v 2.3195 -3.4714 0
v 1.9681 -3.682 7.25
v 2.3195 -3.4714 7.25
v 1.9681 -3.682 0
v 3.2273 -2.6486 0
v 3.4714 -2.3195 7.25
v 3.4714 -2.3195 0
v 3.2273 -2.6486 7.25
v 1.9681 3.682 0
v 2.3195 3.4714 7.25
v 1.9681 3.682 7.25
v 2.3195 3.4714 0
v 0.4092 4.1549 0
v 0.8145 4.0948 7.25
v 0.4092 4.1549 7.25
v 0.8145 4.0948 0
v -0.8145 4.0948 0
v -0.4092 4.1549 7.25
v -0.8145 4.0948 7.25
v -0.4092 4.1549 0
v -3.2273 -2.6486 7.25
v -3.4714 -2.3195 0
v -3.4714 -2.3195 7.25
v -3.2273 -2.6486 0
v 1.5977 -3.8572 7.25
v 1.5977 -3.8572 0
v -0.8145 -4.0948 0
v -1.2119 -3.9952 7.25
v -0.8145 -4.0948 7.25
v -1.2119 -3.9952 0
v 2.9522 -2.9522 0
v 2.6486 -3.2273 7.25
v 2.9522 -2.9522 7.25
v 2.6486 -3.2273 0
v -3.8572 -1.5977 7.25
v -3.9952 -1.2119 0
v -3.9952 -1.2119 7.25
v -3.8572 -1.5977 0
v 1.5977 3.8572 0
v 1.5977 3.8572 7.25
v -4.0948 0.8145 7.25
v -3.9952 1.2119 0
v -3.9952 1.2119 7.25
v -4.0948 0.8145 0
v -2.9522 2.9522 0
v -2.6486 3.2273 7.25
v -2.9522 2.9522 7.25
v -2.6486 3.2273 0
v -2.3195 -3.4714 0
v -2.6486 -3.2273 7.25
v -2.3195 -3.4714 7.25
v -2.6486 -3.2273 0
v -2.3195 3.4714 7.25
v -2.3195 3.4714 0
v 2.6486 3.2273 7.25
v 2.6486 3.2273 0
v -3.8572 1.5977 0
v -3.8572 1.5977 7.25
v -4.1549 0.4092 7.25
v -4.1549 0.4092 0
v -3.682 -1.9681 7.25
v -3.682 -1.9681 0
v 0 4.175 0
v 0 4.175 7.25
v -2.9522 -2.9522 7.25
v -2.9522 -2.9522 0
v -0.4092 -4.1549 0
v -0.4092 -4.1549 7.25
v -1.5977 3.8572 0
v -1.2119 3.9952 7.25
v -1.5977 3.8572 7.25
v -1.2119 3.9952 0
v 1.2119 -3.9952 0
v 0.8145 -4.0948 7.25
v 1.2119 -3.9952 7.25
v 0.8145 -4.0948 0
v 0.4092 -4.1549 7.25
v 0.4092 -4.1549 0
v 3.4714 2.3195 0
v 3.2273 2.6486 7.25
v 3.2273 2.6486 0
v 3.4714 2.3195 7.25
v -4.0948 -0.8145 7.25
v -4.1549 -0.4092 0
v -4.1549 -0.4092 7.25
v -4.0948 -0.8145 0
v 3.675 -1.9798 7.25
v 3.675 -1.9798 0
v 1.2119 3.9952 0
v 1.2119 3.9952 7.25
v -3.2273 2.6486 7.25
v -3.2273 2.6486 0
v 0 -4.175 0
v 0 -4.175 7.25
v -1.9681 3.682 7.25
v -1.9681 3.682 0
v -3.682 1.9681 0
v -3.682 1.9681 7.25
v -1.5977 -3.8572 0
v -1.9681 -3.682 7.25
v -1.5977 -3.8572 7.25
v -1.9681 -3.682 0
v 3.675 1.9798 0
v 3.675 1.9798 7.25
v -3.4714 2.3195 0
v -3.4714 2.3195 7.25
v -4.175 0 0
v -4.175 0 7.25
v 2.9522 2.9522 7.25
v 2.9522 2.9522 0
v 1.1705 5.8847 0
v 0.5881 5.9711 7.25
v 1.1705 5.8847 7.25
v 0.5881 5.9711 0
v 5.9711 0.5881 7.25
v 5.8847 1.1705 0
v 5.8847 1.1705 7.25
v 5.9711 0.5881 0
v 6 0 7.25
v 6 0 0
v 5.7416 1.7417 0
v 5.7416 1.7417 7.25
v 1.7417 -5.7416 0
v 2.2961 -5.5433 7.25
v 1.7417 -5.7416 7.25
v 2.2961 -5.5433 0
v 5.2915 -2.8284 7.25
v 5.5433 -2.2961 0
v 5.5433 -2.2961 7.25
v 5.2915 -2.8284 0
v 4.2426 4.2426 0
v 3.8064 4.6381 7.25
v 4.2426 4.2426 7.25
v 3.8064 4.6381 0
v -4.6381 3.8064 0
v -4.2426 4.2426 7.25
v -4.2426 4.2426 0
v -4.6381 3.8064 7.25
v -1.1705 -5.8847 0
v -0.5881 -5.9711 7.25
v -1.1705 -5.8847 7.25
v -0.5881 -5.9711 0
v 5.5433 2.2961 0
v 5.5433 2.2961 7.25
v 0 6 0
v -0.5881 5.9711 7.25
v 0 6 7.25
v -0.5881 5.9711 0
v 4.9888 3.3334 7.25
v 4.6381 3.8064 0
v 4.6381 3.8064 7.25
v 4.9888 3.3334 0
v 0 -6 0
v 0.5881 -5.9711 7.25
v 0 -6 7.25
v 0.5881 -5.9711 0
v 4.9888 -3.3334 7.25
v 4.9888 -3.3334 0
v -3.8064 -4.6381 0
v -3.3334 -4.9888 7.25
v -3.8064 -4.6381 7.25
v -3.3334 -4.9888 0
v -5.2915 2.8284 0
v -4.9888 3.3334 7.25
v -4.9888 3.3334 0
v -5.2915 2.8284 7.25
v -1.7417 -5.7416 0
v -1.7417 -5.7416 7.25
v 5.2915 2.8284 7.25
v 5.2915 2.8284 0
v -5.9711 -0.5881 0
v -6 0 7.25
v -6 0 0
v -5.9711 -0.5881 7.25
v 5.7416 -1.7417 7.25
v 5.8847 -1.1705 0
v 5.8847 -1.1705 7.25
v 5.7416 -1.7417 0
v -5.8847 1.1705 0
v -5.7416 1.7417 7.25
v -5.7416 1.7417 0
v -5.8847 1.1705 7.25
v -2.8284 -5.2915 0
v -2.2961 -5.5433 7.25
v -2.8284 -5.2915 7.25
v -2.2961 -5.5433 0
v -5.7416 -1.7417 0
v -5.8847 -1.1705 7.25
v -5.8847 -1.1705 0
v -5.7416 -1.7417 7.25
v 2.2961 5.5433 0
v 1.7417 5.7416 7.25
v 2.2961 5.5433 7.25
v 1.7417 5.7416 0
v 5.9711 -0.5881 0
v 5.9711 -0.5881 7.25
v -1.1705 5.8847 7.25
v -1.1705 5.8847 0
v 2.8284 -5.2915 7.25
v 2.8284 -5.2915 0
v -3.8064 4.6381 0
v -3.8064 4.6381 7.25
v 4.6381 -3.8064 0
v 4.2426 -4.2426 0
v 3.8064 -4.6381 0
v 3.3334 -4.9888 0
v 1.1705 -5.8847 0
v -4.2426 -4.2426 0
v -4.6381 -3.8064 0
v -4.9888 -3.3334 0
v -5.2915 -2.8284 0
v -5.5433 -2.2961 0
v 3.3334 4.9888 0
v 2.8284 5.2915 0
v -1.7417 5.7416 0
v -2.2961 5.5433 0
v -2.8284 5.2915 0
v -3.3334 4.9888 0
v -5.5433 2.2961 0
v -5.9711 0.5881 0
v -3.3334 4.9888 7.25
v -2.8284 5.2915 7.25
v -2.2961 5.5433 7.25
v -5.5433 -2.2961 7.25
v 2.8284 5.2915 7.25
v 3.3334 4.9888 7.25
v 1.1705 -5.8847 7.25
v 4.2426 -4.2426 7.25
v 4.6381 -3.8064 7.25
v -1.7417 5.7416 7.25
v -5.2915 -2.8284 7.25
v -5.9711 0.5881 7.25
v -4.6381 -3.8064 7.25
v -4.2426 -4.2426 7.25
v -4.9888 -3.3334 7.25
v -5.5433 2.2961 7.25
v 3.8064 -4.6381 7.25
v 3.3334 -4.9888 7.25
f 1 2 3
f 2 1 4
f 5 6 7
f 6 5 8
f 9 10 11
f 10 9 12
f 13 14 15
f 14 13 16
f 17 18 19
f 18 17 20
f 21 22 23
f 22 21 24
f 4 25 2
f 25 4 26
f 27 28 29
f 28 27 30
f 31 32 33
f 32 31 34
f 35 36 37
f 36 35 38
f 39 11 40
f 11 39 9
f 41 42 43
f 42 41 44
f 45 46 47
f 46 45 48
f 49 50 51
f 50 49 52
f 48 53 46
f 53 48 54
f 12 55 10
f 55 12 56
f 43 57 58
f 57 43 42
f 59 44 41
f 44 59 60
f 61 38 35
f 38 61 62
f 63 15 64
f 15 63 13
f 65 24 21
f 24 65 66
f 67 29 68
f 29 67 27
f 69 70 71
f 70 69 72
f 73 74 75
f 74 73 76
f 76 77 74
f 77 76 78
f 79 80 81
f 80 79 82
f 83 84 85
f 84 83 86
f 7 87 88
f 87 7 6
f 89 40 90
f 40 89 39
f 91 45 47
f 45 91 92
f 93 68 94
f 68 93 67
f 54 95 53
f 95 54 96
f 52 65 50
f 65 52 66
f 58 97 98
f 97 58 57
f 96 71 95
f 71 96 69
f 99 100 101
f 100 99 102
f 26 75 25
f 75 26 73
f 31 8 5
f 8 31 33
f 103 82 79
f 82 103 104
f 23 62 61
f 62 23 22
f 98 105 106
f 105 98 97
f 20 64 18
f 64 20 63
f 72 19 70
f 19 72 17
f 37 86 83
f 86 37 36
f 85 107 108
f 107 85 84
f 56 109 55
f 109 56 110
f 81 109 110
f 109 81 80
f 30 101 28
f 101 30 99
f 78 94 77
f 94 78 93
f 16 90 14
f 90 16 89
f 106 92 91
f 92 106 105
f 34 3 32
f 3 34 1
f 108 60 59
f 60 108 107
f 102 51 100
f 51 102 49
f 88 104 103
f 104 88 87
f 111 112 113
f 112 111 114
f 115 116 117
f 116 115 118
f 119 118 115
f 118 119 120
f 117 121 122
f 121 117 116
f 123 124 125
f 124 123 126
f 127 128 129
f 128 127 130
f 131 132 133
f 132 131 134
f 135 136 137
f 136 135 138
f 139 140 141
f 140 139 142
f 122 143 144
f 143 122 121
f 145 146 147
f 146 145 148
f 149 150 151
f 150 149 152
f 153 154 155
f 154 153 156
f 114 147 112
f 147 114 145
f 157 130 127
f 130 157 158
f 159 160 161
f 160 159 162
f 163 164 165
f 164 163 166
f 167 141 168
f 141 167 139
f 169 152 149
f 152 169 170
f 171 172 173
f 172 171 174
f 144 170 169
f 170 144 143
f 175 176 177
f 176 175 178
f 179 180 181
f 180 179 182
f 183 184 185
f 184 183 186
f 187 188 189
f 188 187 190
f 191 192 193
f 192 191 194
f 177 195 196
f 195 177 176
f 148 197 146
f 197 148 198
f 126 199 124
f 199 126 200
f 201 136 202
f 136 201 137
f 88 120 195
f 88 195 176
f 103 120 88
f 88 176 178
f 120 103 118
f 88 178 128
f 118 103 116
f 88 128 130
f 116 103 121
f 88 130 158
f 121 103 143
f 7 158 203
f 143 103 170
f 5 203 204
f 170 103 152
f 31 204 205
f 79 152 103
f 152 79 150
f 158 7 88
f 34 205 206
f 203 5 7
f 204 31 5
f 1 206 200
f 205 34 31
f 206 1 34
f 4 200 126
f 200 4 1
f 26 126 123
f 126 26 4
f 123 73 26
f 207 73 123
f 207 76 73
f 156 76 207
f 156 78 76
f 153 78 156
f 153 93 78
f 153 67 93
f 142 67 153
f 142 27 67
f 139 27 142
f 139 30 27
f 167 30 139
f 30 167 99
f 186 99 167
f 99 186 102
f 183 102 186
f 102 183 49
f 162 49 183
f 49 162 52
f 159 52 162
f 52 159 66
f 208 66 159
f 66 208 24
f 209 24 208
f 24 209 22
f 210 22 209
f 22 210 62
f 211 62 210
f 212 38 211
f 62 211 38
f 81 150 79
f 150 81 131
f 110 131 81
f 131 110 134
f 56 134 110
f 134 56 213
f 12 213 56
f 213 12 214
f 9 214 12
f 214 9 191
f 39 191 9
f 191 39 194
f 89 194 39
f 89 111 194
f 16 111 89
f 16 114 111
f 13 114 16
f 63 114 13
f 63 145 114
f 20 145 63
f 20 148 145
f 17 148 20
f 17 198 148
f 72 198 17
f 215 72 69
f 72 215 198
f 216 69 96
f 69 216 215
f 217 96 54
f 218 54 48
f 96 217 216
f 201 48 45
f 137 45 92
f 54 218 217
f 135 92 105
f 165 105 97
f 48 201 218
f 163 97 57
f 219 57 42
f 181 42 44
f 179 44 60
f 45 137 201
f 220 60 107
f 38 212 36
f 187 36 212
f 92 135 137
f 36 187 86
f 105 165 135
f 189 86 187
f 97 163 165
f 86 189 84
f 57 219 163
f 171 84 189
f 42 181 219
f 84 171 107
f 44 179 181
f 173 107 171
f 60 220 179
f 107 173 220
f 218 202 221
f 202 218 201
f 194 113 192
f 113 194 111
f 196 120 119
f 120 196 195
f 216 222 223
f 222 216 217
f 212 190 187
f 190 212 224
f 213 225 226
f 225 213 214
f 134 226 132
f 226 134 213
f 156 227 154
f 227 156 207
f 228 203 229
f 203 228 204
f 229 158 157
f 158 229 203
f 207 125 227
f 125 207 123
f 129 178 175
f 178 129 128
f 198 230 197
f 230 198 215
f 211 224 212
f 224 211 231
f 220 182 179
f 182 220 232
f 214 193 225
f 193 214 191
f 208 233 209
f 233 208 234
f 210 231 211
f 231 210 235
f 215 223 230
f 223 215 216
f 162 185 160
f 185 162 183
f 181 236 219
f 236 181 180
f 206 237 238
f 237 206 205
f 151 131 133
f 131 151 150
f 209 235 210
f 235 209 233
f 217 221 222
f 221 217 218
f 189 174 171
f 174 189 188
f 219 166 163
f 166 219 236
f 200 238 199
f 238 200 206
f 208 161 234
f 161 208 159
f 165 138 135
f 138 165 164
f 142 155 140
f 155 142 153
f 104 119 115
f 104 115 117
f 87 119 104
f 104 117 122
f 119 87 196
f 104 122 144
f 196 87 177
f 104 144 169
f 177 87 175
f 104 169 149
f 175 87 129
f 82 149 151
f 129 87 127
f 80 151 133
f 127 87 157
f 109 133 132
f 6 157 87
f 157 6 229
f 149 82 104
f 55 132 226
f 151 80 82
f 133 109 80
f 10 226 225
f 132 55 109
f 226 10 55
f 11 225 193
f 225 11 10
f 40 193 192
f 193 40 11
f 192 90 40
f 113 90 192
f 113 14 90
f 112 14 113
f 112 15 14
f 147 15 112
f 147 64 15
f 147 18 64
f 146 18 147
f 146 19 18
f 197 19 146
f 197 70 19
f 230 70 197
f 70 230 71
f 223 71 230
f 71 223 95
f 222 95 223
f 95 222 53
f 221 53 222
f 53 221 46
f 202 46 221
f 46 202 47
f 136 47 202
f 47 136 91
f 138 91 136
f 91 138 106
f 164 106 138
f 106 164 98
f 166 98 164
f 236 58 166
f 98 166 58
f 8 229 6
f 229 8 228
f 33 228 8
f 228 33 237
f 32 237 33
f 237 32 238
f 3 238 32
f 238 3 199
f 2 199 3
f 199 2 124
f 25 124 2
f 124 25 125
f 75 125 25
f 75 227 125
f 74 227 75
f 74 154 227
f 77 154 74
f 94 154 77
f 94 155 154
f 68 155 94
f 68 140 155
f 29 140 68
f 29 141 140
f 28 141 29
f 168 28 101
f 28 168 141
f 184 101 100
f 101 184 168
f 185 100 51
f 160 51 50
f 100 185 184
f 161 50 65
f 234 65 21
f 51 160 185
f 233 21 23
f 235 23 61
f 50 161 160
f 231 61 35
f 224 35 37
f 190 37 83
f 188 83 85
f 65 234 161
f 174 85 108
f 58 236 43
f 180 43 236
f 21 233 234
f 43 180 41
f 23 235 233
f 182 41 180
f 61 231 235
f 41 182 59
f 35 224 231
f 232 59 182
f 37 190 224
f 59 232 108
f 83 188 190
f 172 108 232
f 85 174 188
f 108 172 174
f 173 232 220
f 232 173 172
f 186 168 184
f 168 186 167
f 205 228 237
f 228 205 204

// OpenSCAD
// Gen-CR — gap sleeve: rigid spacer on the shaft BETWEEN the two rotor carriers (passes through the stator
// hole). Length = m2m, so it sets the magnet gap and carries the full magnet pull. Print x1, upright.
include <parameters.scad>;
$fn = 64;
// D-flat keyed bore: flat faces +X (angle 0 = magnet pocket 0 = index notch)
module dflat_bore(h) {
    intersection() {
        cylinder(d=shaft_bore, h=h);
        translate([-shaft_bore, -shaft_bore, 0]) cube([shaft_bore + dflat_x, 2*shaft_bore, h]);
    }
}

difference() {
    cylinder(d=sleeve_od, h=m2m);
    translate([0, 0, -0.1]) dflat_bore(m2m + 0.2);
}
